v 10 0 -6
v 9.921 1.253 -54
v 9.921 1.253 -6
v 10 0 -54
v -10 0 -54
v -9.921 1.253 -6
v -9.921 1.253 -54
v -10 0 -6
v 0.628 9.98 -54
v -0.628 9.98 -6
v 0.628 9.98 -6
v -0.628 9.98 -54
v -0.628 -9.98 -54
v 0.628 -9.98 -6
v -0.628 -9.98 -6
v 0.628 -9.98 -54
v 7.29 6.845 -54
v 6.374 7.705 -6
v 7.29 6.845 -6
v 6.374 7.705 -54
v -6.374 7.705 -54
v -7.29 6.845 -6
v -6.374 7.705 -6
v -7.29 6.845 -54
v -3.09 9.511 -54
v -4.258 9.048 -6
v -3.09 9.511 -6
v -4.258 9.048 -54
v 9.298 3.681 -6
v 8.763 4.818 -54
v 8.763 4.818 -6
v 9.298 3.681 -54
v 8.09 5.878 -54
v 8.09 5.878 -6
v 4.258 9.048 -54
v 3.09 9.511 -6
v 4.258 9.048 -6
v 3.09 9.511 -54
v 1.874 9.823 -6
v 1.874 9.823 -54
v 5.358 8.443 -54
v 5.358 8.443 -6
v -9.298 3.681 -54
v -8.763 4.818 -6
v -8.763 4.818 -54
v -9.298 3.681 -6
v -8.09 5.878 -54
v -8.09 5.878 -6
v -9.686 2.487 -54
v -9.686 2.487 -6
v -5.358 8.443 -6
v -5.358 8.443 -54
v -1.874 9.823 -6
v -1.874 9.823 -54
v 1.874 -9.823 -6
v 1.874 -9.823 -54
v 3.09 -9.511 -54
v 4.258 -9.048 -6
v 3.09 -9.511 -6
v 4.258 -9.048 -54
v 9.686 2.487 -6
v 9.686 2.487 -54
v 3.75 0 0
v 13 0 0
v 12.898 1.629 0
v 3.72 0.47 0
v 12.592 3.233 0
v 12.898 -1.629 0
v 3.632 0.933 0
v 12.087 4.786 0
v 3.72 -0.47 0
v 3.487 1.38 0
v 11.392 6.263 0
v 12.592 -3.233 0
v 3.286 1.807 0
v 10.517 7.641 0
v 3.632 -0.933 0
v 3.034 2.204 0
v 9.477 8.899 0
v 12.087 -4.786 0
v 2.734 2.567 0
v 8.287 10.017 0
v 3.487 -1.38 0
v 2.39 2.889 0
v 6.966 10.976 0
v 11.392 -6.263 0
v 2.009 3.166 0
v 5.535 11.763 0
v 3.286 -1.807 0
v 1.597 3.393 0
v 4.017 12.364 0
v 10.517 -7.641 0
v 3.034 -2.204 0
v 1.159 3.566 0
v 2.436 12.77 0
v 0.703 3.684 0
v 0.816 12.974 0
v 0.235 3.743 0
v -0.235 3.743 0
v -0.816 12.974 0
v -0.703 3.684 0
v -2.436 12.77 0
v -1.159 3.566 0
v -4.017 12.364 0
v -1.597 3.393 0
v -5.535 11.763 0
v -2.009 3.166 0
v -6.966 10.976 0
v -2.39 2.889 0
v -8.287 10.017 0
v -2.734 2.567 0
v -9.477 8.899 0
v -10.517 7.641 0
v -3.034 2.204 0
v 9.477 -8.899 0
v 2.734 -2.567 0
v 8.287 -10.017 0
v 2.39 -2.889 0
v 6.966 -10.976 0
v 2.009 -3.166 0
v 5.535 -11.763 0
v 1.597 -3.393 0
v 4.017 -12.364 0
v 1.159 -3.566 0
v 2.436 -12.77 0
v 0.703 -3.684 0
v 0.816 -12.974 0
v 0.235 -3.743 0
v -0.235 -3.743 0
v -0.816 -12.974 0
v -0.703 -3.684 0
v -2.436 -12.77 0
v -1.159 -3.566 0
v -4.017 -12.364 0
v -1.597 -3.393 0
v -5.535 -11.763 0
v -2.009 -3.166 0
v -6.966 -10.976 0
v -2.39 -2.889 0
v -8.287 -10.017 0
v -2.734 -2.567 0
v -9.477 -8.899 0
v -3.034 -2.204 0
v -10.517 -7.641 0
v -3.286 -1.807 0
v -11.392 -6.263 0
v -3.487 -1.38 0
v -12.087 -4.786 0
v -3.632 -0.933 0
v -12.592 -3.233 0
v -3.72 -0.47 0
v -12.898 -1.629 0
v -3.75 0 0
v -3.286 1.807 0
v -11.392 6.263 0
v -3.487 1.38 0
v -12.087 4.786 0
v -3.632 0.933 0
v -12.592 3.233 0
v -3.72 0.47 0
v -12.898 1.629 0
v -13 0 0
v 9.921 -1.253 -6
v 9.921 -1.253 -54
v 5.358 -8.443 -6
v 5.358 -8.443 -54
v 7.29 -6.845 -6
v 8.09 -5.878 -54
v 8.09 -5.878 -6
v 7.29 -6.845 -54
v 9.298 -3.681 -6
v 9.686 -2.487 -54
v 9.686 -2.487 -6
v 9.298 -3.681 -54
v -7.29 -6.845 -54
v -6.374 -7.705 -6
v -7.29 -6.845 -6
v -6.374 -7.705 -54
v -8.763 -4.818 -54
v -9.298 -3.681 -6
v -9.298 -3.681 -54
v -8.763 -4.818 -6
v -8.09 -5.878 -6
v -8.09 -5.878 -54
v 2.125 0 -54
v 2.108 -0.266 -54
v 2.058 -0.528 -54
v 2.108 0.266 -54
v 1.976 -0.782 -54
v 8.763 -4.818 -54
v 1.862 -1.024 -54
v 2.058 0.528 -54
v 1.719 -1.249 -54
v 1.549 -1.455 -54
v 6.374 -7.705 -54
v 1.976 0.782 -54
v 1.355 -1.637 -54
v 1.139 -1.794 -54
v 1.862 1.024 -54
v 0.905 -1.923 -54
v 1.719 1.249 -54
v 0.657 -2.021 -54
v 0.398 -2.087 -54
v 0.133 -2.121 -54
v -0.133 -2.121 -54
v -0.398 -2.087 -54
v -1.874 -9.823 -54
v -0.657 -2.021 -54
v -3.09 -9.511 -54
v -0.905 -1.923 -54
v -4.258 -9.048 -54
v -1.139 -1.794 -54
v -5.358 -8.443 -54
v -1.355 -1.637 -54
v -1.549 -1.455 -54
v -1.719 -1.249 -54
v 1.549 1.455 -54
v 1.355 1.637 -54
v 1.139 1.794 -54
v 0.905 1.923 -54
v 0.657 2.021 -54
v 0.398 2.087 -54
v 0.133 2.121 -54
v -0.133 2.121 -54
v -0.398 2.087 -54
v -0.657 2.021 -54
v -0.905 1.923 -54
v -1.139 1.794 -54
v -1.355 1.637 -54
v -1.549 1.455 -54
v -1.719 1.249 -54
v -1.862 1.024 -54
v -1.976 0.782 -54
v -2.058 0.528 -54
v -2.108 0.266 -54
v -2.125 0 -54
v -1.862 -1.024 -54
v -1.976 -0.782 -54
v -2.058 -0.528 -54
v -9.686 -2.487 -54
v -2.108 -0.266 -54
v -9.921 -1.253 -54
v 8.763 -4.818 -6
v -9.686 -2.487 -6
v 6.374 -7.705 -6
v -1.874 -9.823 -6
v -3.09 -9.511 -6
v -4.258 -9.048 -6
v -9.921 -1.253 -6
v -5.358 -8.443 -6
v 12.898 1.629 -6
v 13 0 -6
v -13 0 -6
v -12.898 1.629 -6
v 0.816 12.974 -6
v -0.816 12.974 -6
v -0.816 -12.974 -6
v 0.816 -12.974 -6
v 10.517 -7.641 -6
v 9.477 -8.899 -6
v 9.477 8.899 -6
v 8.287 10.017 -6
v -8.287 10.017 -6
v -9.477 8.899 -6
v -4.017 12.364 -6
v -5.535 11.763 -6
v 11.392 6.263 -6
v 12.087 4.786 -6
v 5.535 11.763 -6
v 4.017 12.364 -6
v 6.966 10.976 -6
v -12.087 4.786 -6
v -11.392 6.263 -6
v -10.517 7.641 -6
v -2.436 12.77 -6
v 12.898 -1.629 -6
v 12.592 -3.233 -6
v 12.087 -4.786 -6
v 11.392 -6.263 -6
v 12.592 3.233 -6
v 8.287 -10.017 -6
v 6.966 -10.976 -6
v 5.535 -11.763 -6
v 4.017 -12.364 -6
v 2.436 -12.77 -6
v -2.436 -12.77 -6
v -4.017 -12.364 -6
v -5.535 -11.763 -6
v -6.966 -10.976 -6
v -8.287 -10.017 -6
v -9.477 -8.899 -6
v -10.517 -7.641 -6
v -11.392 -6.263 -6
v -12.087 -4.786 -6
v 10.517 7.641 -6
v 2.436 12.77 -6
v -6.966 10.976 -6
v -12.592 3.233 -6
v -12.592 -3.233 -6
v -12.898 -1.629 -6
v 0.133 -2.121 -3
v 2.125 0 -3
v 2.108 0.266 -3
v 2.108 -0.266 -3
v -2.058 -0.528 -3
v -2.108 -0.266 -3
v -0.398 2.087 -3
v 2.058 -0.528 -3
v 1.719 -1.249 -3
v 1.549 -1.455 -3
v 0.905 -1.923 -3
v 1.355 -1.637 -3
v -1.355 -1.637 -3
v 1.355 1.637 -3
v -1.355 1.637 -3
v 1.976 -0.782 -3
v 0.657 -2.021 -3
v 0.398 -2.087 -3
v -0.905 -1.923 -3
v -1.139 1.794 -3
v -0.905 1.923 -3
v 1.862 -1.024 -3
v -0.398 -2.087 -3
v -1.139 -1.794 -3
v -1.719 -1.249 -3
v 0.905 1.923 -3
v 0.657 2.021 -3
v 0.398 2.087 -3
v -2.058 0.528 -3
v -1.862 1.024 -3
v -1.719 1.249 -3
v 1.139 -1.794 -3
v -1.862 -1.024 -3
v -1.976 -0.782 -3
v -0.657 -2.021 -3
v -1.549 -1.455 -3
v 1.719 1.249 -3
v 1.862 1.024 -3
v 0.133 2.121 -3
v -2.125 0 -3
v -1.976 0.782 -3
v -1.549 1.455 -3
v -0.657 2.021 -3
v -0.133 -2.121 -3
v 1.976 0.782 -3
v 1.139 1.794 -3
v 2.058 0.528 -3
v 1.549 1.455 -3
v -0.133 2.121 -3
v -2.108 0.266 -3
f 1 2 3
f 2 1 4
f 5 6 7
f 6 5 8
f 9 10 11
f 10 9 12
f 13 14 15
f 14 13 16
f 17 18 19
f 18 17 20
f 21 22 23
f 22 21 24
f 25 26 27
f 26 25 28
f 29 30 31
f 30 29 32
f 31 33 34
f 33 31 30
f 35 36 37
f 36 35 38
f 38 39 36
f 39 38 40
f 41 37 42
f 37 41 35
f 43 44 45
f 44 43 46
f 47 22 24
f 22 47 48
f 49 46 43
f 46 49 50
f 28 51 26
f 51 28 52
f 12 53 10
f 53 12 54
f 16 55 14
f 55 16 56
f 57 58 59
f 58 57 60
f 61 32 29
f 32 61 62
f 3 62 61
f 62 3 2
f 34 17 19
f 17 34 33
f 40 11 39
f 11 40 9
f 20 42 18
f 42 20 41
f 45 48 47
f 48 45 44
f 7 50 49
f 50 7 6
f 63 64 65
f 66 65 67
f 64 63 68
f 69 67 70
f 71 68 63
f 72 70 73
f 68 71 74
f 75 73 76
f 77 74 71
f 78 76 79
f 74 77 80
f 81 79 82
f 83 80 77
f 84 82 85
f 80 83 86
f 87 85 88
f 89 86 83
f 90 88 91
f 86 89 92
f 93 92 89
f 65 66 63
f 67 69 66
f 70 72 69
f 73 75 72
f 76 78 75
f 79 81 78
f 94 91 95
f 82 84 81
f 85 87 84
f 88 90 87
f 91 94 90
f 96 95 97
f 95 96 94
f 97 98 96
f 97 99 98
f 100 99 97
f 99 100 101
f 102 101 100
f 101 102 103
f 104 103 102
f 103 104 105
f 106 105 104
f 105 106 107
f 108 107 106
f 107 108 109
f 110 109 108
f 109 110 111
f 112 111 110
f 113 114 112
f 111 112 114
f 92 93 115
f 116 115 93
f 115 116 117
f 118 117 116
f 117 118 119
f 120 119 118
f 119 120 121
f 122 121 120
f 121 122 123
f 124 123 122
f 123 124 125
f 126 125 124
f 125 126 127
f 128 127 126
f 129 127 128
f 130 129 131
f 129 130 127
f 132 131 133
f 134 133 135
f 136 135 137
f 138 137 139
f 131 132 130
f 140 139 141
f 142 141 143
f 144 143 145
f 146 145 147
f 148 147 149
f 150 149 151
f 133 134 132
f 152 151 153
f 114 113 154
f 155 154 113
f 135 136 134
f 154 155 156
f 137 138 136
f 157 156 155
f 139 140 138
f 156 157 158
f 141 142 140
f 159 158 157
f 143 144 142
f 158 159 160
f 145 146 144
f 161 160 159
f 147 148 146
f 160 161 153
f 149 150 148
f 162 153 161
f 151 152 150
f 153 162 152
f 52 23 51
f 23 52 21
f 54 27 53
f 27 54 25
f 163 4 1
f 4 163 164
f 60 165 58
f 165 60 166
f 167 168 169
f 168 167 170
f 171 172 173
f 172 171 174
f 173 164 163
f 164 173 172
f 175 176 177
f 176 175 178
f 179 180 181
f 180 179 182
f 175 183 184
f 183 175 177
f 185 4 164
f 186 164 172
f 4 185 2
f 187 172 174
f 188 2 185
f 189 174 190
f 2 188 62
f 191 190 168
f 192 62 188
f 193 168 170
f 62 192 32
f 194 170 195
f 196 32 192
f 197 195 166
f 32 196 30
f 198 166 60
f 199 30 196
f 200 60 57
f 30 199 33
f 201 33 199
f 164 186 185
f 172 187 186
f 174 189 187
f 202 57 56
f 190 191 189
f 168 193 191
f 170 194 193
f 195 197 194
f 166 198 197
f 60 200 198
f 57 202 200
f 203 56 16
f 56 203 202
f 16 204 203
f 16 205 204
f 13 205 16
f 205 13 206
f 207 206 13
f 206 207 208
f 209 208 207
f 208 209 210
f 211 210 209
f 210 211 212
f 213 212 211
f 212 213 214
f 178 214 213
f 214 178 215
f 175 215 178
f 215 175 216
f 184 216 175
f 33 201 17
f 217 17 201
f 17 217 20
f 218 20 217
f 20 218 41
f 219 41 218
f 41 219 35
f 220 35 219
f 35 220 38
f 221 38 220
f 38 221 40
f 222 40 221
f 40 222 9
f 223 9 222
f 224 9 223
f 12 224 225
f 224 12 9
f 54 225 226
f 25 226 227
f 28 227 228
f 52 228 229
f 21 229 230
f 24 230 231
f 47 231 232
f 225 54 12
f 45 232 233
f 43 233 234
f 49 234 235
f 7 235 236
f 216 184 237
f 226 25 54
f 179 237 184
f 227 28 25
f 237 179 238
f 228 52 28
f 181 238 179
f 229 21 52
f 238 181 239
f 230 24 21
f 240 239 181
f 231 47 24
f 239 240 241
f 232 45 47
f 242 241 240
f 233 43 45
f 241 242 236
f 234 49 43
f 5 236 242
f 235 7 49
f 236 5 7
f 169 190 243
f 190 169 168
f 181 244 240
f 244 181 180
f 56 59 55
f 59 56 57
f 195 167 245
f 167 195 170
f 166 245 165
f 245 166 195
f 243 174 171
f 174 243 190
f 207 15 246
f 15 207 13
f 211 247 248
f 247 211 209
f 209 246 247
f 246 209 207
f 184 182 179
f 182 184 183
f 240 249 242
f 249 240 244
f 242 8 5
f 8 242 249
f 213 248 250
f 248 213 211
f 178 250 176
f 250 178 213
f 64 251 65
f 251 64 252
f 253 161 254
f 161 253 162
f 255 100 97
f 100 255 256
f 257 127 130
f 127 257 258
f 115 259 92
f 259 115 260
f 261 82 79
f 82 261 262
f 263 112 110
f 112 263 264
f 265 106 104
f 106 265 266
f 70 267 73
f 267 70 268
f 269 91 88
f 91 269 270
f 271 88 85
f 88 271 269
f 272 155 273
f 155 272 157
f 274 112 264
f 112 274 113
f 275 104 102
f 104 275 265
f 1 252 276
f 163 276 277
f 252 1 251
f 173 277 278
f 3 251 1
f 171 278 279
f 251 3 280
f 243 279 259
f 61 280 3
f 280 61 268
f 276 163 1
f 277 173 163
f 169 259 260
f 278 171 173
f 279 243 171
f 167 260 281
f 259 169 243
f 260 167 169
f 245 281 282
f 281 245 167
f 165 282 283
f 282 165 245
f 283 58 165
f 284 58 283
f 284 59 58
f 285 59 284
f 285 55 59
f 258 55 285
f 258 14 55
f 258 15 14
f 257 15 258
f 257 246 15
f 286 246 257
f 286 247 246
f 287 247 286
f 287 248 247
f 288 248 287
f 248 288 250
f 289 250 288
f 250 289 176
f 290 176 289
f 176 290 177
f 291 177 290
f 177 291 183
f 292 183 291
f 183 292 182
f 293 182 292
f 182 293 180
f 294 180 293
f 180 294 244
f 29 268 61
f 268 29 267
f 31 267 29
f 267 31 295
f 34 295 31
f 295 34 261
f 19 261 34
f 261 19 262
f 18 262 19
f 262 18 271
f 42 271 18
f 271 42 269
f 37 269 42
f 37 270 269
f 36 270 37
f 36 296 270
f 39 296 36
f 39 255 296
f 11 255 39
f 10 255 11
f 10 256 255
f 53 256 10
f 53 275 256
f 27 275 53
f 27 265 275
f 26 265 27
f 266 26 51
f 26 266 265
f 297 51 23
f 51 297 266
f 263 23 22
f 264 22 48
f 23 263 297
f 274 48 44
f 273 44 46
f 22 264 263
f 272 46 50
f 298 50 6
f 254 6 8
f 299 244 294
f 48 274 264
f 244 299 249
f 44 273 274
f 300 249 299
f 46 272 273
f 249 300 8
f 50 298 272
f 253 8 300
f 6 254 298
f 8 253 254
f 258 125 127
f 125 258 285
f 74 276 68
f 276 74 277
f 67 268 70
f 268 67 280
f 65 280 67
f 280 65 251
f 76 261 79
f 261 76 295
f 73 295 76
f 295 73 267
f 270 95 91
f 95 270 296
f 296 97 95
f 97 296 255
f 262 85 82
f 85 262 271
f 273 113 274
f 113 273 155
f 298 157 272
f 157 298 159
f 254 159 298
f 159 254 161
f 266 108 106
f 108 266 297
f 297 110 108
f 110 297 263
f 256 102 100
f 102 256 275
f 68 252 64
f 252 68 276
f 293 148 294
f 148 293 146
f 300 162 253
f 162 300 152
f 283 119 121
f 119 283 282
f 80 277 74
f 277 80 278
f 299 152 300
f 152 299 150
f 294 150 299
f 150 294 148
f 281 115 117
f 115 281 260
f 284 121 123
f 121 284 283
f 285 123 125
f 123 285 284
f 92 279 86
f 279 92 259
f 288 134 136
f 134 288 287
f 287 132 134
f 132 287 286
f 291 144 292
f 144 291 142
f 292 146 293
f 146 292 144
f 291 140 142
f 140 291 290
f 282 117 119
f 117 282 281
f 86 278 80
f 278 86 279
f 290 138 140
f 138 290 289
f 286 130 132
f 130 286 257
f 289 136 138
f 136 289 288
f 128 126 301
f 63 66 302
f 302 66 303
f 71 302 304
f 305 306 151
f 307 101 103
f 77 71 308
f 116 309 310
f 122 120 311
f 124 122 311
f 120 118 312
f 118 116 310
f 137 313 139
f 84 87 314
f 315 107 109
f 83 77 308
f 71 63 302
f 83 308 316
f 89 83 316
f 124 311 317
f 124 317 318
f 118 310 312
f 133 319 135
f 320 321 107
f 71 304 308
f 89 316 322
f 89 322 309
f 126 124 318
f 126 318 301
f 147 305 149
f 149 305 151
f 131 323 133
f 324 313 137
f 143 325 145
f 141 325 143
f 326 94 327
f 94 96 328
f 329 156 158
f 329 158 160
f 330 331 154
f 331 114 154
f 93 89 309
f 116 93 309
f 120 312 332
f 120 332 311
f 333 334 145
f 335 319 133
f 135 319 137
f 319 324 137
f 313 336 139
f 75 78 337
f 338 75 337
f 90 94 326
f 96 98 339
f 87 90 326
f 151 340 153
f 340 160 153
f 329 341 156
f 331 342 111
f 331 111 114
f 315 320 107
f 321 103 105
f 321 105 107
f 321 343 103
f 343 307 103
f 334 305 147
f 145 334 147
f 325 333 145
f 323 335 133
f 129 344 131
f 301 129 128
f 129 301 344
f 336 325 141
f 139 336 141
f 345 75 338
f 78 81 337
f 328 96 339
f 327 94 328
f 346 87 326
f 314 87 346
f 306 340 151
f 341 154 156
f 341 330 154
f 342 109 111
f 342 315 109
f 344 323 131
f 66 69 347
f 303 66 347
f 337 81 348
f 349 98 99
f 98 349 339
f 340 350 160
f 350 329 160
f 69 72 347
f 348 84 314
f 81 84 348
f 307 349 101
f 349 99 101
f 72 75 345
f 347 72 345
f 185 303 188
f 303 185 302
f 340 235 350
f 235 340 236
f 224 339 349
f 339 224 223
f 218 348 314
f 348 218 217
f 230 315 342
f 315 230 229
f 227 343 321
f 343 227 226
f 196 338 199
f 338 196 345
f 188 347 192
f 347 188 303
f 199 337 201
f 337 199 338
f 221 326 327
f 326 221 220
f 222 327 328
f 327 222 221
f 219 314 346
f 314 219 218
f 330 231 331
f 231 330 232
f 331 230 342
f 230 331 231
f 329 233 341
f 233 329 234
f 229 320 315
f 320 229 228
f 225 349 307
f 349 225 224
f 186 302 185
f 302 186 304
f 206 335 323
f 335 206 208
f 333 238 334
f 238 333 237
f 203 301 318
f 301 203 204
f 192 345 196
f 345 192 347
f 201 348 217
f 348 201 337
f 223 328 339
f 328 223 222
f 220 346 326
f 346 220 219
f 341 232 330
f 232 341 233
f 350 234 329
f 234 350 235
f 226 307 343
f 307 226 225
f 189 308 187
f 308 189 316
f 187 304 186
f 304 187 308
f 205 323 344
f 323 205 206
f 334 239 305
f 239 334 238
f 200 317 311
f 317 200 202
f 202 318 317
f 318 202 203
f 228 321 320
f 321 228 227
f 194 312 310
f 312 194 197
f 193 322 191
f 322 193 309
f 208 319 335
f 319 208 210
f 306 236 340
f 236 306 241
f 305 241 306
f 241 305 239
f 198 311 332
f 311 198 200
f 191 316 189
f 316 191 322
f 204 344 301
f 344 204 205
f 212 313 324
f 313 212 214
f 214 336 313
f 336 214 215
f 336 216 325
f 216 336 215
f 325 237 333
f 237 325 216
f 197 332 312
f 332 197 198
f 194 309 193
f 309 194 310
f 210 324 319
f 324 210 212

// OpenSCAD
$fn = 50;


difference() {
	union() {
		translate(v = [0, 0, -54.0000000000]) {
			cylinder(h = 54, r = 10.0000000000);
		}
		translate(v = [0, 0, -6.0000000000]) {
			cylinder(h = 6, r = 13.0000000000);
		}
	}
	union() {
		translate(v = [0, 0, 0]) {
			rotate(a = [0, 0, 0]) {
				difference() {
					union() {
						#translate(v = [0, 0, -54.0000000000]) {
							cylinder(h = 54, r = 2.0000000000);
						}
						#translate(v = [0, 0, -3]) {
							cylinder(h = 3, r1 = 2.1250000000, r2 = 3.7500000000);
						}
						#translate(v = [0, 0, -54.0000000000]) {
							cylinder(h = 54, r = 2.1250000000);
						}
						#translate(v = [0, 0, -54.0000000000]) {
							cylinder(h = 54, r = 2.0000000000);
						}
					}
					union();
				}
			}
		}
	}
}
